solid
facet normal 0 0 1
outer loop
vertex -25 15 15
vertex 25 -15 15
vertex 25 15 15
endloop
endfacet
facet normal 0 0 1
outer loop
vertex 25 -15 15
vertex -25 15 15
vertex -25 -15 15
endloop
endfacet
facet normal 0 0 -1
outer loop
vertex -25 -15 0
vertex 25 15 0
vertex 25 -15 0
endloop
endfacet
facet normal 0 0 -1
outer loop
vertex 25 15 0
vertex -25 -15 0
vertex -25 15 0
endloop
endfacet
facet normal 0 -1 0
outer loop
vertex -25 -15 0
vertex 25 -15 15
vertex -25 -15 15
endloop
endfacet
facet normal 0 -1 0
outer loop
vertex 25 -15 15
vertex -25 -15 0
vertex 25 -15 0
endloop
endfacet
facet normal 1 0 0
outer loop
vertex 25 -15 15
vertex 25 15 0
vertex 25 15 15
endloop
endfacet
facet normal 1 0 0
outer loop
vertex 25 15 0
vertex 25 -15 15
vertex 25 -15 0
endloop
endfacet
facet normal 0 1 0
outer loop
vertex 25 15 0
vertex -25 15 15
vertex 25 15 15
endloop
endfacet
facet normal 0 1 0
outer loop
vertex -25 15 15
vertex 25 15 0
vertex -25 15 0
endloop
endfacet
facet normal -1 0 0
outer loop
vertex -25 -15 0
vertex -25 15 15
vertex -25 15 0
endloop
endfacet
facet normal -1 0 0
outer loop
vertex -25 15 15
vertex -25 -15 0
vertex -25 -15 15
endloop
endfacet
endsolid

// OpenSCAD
// Define dimensions for the rectangular block
block_length = 50;  // Length of the block
block_width = 30;   // Width of the block
block_height = 15;  // Height of the block (increased thickness)

// Create the rectangular block
module rectangular_block() {
    translate([0, 0, 7.5])  // Adjust position to align with the original model
    cube([block_length, block_width, block_height], center = true);
}

// Call the module to render the block
rectangular_block();
